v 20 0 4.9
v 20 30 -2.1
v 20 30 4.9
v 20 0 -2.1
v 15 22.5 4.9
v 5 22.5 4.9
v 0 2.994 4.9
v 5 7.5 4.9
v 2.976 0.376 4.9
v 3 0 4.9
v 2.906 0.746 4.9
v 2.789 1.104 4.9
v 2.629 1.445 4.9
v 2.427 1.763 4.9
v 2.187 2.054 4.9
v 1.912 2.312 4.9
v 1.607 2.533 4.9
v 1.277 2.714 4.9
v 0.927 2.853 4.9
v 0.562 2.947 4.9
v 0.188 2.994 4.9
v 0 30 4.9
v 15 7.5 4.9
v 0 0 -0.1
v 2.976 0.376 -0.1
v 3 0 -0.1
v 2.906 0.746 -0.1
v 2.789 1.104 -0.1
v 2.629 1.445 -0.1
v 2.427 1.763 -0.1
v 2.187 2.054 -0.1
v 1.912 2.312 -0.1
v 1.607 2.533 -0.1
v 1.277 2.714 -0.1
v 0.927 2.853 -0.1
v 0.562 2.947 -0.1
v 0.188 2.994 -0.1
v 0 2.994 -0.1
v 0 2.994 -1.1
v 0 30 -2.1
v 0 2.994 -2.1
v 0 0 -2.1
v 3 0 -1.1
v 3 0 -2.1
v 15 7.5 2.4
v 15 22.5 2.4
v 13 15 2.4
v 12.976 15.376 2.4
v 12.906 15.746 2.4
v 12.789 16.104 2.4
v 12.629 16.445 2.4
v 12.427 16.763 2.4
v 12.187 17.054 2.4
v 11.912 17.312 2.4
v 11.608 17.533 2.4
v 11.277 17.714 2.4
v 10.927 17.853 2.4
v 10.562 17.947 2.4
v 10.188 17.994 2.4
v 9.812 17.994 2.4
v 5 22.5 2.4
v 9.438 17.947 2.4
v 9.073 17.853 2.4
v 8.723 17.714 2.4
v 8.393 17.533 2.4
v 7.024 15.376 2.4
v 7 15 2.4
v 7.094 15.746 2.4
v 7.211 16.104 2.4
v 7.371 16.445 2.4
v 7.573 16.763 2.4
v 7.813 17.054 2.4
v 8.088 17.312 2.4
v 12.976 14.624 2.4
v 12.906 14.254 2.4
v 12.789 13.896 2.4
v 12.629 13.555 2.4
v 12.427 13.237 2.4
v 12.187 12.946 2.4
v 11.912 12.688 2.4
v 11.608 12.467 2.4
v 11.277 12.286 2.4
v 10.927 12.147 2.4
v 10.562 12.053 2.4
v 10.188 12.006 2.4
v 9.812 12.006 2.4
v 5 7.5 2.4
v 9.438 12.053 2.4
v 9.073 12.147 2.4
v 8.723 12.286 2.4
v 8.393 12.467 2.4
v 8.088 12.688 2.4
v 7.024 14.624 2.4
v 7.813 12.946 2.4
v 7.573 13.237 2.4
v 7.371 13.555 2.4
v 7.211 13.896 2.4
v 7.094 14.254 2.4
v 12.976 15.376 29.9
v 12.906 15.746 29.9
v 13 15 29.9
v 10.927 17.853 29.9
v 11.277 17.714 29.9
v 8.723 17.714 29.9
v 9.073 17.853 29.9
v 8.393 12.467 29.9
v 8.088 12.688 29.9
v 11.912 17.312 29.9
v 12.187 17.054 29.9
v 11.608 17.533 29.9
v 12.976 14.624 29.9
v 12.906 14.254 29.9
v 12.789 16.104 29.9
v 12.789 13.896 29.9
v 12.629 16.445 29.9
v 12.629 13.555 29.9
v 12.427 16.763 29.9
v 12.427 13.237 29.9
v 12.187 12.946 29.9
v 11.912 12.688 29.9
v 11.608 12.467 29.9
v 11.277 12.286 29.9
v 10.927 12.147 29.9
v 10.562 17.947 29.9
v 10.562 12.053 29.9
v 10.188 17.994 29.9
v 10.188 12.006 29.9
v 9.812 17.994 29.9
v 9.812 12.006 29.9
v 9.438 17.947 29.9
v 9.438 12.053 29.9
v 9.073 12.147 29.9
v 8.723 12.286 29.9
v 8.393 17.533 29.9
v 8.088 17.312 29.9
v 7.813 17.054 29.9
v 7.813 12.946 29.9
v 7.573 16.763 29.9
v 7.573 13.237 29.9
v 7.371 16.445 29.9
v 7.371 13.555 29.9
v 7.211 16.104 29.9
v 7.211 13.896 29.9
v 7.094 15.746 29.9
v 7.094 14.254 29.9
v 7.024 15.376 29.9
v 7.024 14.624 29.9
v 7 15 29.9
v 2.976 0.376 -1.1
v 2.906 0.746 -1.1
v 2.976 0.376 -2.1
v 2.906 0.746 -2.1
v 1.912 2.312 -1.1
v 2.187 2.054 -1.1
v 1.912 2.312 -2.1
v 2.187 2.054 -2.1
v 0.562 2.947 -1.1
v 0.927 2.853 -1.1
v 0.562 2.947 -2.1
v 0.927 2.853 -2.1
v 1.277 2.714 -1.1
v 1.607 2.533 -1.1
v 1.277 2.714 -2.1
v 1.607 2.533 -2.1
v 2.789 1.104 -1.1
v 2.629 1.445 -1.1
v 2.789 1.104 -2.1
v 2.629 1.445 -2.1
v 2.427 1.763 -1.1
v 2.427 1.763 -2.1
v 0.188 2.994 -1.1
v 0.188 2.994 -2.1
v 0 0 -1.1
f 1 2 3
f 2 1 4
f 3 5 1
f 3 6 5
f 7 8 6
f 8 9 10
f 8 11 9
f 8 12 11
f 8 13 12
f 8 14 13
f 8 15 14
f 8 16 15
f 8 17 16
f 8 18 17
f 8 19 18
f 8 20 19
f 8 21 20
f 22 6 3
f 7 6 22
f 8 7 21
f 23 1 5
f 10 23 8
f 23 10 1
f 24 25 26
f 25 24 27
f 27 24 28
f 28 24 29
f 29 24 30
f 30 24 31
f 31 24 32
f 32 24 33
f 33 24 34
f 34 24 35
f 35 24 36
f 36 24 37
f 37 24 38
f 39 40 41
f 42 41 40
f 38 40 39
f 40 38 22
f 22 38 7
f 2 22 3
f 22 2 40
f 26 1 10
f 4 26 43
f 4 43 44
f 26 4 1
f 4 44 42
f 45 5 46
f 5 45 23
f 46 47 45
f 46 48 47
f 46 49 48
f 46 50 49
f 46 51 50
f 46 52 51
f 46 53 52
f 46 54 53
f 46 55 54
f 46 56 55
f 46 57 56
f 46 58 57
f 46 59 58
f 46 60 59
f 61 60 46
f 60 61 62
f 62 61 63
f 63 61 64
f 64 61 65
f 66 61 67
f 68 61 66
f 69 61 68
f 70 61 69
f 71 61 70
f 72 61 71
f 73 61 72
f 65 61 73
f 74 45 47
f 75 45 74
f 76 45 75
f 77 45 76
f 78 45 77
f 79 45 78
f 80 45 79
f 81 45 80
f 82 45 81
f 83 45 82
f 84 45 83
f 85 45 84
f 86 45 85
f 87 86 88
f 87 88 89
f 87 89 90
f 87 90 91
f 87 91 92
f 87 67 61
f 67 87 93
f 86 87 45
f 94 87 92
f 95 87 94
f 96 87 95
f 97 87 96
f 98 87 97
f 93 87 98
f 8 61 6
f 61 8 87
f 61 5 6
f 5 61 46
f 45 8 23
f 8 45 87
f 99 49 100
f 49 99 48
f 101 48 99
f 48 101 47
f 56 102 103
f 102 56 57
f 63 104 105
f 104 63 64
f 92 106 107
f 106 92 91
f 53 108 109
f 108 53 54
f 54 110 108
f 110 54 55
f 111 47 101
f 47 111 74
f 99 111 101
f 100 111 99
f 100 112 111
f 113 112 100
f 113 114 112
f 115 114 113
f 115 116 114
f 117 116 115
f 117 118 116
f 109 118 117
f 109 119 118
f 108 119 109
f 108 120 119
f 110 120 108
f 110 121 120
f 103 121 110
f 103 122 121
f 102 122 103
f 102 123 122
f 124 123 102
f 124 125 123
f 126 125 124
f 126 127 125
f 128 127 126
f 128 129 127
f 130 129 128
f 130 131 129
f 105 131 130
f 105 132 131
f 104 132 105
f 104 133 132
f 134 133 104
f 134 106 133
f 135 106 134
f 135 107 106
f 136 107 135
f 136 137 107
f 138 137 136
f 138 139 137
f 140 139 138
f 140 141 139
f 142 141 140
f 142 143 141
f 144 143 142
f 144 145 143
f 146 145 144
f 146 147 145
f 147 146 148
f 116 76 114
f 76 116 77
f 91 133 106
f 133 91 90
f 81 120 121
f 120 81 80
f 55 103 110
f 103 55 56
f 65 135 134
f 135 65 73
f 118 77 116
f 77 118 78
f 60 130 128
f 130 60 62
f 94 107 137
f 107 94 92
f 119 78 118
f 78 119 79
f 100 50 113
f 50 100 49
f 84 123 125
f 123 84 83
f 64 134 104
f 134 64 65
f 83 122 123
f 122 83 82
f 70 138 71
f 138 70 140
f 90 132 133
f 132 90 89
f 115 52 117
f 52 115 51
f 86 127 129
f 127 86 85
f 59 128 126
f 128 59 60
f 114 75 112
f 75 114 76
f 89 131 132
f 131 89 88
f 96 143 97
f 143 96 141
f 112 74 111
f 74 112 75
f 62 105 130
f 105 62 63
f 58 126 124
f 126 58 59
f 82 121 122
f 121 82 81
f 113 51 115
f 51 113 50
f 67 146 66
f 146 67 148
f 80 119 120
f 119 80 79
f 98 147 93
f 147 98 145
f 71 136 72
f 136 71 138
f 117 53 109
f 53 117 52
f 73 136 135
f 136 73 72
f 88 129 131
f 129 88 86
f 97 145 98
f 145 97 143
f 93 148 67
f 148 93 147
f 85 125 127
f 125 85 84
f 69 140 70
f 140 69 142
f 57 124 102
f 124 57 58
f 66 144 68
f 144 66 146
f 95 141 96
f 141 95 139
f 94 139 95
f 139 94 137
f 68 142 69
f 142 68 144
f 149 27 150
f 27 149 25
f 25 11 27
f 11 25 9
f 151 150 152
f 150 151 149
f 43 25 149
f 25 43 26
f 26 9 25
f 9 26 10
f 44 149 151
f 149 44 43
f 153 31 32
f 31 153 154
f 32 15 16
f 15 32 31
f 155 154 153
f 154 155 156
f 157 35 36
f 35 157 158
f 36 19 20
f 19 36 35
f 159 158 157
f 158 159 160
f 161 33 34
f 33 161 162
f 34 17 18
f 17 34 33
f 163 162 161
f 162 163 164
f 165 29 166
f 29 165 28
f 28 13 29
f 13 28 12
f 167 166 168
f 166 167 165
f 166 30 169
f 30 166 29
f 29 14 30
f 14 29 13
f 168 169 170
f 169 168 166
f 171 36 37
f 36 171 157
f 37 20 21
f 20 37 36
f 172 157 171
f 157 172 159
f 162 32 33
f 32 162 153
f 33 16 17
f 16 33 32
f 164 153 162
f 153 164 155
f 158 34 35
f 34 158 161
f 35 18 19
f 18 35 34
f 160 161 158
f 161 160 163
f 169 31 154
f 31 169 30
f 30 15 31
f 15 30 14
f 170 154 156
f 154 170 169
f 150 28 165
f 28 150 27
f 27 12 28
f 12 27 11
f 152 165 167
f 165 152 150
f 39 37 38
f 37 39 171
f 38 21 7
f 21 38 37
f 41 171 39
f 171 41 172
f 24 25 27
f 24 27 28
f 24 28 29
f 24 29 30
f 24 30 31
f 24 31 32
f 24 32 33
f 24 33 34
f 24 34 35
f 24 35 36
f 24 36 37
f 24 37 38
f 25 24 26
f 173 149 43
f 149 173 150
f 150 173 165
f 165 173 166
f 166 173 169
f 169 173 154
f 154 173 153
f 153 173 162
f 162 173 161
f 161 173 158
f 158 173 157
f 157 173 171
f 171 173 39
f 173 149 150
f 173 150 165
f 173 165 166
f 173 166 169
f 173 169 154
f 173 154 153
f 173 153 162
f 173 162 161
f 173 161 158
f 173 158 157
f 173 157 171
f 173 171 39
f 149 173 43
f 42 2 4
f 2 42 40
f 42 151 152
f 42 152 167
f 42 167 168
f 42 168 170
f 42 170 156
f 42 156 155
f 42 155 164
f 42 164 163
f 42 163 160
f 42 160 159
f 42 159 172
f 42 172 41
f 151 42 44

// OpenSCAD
// Hinge Parameters
width = 20;
height = 30;
thickness = 5;
pin_diameter = 6;
pin_length = 25;
hole_diameter = pin_diameter + 2;

module hinge_leaf(width, height, thickness) {
  difference() {
    cube([width, height, thickness]);
    translate([width/4, height/4, thickness/2])
    cube([width/2, height/2, thickness]);
  }
}

module hinge() {
  difference() {
    translate([0, 0, -0.1]) {
      hinge_leaf(width, height, thickness);
      translate([width/2, height/2, 0]) {
        cylinder(h = height, d = pin_diameter, $fn = 50);
      }
    }
    translate([0, 0, -0.1]) {
      cylinder(h = height, d = pin_diameter, $fn = 50);
    }
  }
}

translate([0, 0, 0]) {
  hinge();
}

translate([0,0,-1]) {
  hinge();
}

translate([0,0,0]) {
  hinge();
}

translate([0,0,-2]) {
  hinge();
}
